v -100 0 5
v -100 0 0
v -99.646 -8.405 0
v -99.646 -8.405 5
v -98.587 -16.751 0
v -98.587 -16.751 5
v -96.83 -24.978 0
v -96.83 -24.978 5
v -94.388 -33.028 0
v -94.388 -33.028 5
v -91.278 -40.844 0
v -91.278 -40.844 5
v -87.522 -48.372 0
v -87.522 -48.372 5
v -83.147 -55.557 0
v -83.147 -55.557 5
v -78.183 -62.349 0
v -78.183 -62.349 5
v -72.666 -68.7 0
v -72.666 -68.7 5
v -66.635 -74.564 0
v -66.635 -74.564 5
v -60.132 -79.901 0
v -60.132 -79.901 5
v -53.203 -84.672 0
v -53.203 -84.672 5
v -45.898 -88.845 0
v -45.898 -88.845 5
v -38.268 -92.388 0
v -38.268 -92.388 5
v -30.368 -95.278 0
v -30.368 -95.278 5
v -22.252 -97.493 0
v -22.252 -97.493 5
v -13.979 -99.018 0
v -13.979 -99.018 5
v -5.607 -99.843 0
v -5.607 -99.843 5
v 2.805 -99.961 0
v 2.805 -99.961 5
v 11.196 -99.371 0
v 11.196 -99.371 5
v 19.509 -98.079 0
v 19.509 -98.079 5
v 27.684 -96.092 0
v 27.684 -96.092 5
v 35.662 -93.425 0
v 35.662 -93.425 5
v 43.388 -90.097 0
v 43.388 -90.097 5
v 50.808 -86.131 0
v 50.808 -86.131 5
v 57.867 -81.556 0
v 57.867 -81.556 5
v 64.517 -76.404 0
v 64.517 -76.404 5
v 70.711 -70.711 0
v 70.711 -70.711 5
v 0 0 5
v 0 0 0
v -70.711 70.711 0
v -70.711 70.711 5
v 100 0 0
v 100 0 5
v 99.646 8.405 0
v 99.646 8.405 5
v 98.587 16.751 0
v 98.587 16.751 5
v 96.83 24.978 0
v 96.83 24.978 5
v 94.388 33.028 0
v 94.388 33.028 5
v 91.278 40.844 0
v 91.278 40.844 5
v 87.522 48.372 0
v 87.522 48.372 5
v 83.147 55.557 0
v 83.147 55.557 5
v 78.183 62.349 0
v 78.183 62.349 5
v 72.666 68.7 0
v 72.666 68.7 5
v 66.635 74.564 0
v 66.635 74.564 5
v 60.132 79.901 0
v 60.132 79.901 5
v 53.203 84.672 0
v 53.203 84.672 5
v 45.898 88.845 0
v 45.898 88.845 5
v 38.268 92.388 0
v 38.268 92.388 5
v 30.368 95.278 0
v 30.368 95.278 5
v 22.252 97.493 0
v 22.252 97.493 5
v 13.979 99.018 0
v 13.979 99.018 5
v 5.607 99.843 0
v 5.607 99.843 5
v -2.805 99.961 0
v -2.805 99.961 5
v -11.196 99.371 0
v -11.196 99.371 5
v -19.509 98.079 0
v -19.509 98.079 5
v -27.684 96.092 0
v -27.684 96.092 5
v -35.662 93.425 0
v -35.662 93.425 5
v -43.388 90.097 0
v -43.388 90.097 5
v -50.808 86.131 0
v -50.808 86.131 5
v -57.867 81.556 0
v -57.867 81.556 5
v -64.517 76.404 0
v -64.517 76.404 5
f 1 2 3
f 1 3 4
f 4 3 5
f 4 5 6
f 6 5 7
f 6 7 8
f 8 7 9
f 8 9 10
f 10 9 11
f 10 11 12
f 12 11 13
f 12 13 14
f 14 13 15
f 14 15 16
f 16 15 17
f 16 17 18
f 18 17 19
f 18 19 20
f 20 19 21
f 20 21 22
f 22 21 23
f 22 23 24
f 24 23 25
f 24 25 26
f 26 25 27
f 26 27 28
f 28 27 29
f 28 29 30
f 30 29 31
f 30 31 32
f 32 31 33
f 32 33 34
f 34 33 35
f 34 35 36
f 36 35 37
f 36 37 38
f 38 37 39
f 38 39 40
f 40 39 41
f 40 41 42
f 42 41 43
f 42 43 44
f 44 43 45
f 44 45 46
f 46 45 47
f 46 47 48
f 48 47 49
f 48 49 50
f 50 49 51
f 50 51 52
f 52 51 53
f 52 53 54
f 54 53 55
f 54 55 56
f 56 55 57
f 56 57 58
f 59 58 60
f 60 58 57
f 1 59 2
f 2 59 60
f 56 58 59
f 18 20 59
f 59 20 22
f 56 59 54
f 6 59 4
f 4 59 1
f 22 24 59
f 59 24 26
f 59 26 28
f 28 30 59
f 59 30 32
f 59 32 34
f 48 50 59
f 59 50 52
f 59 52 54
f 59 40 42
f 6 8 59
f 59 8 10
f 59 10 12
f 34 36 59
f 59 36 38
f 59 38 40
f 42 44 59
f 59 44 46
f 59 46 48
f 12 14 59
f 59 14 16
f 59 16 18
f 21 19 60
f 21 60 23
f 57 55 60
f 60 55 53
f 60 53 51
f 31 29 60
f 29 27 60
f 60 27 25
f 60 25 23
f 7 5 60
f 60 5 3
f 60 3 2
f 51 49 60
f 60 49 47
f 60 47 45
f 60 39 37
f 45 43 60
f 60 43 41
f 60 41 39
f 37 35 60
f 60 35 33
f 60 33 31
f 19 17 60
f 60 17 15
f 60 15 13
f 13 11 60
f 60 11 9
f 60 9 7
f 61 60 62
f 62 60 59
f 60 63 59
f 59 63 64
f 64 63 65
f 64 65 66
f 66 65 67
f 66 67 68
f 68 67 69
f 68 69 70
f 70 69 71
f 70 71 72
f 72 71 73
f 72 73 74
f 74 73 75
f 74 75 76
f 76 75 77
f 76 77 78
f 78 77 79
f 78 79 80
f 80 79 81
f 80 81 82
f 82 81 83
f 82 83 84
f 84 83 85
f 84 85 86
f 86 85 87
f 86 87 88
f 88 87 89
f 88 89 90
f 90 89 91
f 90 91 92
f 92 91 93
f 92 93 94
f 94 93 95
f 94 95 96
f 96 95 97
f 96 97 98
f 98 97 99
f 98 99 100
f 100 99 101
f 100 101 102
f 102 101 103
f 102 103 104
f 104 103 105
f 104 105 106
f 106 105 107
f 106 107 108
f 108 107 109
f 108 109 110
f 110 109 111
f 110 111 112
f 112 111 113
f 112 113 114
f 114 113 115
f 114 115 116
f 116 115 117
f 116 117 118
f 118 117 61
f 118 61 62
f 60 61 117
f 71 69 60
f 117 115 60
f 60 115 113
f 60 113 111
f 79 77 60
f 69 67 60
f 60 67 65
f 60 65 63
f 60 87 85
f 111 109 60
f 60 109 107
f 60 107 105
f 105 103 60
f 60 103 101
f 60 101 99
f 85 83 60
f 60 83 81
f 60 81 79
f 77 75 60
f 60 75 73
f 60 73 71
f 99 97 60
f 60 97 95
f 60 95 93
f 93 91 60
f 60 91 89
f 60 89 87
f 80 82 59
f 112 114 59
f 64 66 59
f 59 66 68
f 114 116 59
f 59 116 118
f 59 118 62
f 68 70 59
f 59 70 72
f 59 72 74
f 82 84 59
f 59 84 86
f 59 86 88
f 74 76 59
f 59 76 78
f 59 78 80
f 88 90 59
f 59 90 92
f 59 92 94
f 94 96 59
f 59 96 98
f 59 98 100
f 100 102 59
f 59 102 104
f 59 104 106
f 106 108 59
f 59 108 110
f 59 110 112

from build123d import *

# Parameters (mm, degrees)
BOSS_EXTRUDE1_DEPTH = 5
BOSS_EXTRUDE2_DEPTH = 5


with BuildPart() as part:
    # Sketch1 → Boss-Extrude1 (new body)
    with BuildSketch(Plane.XY):
        with BuildLine():
            Line((0, 0), (-100, 0))
            ThreePointArc((-100, 0), (-38.268343237, -92.387953251), (70.710678119, -70.710678119))
            Line((70.710678119, -70.710678119), (0, 0))
        make_face()
    extrude(amount=BOSS_EXTRUDE1_DEPTH)


with BuildPart() as body_2:
    # Sketch2 → Boss-Extrude2 (new body)
    with BuildSketch(Plane.XY):
        with BuildLine():
            Line((0, 0), (100, 0))
            ThreePointArc((100, 0), (38.268343237, 92.387953251), (-70.710678119, 70.710678119))
            Line((-70.710678119, 70.710678119), (0, 0))
        make_face()
    extrude(amount=BOSS_EXTRUDE2_DEPTH)


solid = Compound([part.part, body_2.part])
